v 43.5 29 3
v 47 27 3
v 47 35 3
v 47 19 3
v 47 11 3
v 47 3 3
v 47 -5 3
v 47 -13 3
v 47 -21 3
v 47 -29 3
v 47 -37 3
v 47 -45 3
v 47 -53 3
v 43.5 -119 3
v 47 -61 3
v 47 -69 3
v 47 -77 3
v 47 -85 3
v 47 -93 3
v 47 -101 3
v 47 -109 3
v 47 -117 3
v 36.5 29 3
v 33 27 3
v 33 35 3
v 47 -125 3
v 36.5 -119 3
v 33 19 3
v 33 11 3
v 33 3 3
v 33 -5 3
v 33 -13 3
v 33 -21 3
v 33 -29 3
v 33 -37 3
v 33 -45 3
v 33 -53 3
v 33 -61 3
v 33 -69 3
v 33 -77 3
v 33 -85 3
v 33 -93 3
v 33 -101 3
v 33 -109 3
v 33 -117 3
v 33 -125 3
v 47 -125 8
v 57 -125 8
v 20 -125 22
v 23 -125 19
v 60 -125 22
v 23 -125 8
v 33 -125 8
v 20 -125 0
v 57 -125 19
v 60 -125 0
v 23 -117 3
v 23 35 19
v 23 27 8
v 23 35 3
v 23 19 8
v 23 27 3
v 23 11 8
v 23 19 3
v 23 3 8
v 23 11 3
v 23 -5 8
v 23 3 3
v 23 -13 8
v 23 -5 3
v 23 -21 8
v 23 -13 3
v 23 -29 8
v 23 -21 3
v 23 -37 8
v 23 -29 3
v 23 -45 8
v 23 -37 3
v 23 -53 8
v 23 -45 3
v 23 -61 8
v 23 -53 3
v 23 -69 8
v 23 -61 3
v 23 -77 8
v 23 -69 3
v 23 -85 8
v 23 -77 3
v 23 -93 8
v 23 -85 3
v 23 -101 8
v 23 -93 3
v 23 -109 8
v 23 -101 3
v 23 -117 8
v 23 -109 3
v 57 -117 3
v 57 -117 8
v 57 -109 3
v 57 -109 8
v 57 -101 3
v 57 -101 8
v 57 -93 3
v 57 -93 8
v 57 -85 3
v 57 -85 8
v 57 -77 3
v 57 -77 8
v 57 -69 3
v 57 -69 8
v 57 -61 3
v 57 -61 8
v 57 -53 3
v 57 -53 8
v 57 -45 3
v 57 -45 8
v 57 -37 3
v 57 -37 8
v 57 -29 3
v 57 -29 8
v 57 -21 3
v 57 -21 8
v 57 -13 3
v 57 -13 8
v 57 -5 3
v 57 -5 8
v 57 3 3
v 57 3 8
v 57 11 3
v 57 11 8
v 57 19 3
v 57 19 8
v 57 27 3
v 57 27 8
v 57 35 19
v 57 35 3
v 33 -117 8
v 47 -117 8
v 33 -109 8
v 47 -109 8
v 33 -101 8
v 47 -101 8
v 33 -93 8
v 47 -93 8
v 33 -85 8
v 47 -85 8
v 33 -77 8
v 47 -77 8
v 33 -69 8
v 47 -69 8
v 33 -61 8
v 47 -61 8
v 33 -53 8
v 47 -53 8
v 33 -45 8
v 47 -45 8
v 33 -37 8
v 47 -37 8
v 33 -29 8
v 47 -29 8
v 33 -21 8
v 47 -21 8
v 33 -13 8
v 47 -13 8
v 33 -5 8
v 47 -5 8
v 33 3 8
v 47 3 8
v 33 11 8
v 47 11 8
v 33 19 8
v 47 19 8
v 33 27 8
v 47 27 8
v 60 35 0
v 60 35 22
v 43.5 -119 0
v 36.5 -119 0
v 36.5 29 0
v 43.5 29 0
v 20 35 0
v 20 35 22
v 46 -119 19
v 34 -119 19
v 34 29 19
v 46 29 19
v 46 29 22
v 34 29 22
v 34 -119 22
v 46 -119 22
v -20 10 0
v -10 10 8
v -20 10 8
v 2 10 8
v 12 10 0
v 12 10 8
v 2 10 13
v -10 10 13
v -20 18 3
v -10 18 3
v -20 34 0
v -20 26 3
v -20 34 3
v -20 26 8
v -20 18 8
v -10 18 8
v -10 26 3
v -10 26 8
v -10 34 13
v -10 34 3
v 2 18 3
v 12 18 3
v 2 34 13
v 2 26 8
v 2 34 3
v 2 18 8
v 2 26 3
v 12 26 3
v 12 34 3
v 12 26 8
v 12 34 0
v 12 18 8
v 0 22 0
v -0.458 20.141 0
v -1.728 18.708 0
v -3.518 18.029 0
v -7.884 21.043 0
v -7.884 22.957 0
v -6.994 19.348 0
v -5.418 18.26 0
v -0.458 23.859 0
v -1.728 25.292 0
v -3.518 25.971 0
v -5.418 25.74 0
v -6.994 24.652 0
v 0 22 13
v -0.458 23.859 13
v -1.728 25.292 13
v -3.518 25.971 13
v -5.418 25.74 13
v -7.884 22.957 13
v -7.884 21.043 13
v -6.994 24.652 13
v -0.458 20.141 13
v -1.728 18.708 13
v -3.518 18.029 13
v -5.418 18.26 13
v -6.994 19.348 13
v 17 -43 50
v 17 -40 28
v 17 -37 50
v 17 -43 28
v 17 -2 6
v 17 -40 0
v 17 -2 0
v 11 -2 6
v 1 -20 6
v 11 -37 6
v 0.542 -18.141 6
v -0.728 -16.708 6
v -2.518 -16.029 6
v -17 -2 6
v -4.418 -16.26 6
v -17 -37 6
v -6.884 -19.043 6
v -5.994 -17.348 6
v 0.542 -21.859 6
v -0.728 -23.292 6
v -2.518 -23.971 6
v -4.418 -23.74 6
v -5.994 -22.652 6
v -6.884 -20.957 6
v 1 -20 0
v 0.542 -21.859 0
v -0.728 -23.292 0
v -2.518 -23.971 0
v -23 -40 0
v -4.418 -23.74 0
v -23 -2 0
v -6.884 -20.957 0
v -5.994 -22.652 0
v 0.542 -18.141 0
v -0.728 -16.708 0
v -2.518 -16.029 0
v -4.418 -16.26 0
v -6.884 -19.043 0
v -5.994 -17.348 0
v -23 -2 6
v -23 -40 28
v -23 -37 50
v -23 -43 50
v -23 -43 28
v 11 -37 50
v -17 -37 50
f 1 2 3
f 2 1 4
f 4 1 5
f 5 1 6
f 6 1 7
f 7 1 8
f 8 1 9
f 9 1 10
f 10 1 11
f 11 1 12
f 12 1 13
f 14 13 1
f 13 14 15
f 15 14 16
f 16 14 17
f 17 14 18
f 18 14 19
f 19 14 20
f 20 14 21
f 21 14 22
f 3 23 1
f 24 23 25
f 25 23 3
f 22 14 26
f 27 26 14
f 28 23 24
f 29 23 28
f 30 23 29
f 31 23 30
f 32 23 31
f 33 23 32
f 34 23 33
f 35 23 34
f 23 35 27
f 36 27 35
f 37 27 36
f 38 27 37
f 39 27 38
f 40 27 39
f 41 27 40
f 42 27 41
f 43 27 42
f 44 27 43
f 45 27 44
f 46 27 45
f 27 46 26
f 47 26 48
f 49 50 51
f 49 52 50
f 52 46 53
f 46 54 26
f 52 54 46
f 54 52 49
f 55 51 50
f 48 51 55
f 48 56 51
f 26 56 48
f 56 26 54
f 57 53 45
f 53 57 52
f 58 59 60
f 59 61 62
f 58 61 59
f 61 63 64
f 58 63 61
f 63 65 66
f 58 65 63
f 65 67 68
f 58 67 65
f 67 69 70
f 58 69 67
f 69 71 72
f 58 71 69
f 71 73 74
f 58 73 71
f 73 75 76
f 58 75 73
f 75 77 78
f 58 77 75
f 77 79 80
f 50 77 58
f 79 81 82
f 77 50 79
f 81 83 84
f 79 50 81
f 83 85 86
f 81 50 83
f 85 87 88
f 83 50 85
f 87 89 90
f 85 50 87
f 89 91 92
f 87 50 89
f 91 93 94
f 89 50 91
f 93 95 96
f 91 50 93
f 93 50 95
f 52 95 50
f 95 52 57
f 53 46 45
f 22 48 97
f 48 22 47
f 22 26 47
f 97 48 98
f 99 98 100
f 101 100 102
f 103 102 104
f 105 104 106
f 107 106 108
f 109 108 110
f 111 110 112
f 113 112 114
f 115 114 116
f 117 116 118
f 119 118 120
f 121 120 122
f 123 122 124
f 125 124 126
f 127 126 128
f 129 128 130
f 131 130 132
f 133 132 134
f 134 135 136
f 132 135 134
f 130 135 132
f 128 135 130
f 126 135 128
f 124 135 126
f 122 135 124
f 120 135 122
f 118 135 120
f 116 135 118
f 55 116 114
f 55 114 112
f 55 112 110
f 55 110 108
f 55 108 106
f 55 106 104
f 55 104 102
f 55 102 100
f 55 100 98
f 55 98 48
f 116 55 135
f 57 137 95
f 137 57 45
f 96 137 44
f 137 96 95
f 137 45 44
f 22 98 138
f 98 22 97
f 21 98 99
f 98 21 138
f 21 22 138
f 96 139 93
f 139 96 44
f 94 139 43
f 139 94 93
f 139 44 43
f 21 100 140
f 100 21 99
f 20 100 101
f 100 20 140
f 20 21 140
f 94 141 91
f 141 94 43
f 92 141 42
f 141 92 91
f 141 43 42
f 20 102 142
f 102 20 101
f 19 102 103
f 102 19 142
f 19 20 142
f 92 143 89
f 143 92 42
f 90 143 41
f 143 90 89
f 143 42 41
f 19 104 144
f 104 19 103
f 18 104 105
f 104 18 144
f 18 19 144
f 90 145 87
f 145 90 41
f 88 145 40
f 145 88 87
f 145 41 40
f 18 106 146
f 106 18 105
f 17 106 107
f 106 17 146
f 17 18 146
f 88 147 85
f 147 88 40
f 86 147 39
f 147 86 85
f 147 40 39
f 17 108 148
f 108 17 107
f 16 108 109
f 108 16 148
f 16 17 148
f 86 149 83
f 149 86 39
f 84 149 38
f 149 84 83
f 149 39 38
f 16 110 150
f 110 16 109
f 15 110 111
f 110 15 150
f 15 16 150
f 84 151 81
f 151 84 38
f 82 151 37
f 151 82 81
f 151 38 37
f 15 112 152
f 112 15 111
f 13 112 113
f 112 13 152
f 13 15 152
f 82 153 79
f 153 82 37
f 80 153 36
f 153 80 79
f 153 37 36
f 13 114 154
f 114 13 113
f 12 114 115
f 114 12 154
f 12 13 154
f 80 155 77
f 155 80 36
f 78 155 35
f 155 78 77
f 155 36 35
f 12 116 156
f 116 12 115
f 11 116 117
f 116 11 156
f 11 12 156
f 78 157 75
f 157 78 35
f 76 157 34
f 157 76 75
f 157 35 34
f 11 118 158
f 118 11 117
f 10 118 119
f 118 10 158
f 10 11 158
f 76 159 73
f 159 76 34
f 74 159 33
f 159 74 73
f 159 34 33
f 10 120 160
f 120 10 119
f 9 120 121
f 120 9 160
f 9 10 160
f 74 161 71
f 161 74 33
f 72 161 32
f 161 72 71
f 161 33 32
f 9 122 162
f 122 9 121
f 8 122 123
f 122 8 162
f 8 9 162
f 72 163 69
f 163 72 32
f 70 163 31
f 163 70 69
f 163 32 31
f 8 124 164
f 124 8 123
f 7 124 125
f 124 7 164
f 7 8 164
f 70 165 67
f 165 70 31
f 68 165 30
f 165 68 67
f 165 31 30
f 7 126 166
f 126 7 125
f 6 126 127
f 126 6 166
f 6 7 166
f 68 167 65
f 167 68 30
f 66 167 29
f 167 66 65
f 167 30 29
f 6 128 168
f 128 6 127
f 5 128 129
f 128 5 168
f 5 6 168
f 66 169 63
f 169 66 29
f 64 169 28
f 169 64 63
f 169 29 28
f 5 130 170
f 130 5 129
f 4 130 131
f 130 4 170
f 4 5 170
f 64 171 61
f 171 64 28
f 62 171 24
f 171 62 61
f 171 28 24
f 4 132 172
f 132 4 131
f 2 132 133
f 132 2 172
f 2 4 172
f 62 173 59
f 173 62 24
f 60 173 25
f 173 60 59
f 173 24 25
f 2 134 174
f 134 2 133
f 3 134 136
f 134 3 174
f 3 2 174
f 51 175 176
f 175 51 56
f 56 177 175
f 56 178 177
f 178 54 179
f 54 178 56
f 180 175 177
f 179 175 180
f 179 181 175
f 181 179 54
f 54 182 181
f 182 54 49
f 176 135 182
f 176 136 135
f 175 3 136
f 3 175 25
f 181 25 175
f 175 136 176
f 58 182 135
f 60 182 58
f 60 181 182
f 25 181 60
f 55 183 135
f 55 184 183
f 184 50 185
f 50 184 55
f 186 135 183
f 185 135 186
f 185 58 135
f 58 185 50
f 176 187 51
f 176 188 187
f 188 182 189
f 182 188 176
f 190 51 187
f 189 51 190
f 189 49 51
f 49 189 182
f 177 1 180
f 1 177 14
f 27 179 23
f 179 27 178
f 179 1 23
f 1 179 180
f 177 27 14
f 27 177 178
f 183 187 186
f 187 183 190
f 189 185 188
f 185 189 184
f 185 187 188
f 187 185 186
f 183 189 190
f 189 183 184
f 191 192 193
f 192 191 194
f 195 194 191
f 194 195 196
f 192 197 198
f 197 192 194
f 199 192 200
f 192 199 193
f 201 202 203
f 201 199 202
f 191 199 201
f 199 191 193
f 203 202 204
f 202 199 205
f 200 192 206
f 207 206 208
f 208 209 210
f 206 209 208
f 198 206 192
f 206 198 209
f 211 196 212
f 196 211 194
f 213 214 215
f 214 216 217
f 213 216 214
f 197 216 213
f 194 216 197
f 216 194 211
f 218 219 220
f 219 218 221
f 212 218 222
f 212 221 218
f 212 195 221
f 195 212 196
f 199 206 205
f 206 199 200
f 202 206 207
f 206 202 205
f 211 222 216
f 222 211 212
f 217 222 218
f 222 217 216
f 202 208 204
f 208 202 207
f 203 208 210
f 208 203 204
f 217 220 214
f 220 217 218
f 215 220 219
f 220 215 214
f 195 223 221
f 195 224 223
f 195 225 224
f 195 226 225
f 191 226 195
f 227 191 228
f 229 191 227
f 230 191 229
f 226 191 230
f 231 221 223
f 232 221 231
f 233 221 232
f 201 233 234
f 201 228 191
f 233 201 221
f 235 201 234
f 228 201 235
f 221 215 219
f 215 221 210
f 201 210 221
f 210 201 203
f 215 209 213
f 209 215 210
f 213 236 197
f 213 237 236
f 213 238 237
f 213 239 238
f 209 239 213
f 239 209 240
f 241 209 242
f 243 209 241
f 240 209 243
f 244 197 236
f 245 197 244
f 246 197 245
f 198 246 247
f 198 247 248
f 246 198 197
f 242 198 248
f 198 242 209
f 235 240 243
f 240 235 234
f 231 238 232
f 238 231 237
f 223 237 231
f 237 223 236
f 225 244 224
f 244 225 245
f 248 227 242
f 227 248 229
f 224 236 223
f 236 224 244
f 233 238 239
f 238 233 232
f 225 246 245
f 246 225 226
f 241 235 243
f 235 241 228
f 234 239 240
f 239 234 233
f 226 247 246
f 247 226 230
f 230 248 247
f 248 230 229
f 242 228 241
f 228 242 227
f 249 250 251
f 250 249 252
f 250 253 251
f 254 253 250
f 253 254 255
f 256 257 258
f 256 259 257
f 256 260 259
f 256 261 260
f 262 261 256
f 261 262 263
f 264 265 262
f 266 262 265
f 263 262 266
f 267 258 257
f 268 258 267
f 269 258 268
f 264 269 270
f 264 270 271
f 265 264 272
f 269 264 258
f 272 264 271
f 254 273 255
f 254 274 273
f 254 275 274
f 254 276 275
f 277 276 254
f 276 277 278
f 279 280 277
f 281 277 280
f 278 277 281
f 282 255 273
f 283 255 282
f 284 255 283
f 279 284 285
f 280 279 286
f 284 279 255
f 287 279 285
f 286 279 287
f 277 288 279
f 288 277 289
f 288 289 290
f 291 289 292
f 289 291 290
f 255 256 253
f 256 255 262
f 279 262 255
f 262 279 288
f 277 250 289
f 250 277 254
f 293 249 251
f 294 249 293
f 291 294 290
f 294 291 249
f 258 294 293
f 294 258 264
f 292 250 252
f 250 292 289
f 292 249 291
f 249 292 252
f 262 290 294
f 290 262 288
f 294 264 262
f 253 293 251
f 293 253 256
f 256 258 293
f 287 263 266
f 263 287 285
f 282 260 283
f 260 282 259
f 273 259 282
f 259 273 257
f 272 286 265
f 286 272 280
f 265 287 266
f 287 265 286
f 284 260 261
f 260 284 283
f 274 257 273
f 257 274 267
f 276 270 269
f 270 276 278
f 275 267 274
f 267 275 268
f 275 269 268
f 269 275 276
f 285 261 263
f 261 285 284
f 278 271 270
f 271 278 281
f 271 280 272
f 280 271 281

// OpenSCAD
length = 160;
thickness = 3;
channel_height = 16;
width = 40;

wedge_depth = 38;
wedge_height = 44;

overhang = (width - thickness * 2 - 8) / 2;

module wedge(h=5, w=overhang-thickness, l=8) {
    CubePoints = [
      [  0,  0,  0 ],  //0
      [  0,  0,  h ],  //1
      [  0,  l,  0 ],  //2
      [  w,  0,  0 ],  //3
      [  w,  0,  h ],  //4
      [  w,  l,  0 ]   //5
    ];
    CubeFaces = [
      [0,2,5,3],  // bottom
      [1,0,3,4],  // front
      [5,2,1,4],  // top
      [0,1,2],    // right
      [3,5,4]     // left
    ];
    polyhedron( CubePoints, CubeFaces );
}


translate([20, -125, 0]) {
    difference() {
        union() {
            // base
            cube([width, length, thickness]);
            // sides
            translate([0, 0, thickness])
            cube([thickness, length, channel_height]);
            translate([width-thickness, 0, thickness])
            cube([thickness, length, channel_height]);
            

            for(i = [0:1:length/8-1]) {
                translate([thickness, i*8, thickness])
                wedge();
                translate([width-overhang, i*8, thickness])
                wedge();
            }
            // channel tops
            translate([0, 0, channel_height+thickness])
            cube([width, length, thickness]);
        }
        // screw slide
        translate([width/2 - 3.5, thickness * 2, -1])
        cube([7, length-(thickness * 4), channel_height]);
        // screw slide
        translate([width/2 - 6, thickness * 2, channel_height])
        cube([12, length-(thickness * 4), channel_height]);
    }
}


// sled
translate([-20, 10, 0]) {
    difference() {
        union() {
            // base
            cube([width-2-thickness*2, 24, thickness]);
            translate([overhang-thickness, 0, thickness])
            cube([12, 24, channel_height - 6]);
            for(i = [0:1:2]) {
                translate([0, i*8, thickness])
                wedge();
                translate([width-overhang-2-thickness, i*8, thickness])
                wedge();
            }
         }
         translate([(width-2-thickness*2)/2, 12, -1])
         cylinder(h=30, r=4, center=true);
    }
}


// clamp-face
translate([-20-thickness, -40, 0])
difference() {
    union() {
        cube([width, wedge_depth, thickness * 2]);
        translate([0, 0, thickness * 2])
        cube([width, thickness, wedge_height]);

        translate([0, -thickness, thickness * 2 + wedge_height/2])
        cube([width, thickness, wedge_height/2]);

        translate([0, thickness, thickness * 2])
        wedge(h=wedge_height, w=thickness*2, l=wedge_depth-thickness);
        translate([width-thickness*2, thickness, thickness * 2])
        wedge(h=wedge_height, w=thickness*2, l=wedge_depth-thickness);
    }
    translate([width/2, width/2, -1])
    cylinder(h=30, r=4, center=true);
}
